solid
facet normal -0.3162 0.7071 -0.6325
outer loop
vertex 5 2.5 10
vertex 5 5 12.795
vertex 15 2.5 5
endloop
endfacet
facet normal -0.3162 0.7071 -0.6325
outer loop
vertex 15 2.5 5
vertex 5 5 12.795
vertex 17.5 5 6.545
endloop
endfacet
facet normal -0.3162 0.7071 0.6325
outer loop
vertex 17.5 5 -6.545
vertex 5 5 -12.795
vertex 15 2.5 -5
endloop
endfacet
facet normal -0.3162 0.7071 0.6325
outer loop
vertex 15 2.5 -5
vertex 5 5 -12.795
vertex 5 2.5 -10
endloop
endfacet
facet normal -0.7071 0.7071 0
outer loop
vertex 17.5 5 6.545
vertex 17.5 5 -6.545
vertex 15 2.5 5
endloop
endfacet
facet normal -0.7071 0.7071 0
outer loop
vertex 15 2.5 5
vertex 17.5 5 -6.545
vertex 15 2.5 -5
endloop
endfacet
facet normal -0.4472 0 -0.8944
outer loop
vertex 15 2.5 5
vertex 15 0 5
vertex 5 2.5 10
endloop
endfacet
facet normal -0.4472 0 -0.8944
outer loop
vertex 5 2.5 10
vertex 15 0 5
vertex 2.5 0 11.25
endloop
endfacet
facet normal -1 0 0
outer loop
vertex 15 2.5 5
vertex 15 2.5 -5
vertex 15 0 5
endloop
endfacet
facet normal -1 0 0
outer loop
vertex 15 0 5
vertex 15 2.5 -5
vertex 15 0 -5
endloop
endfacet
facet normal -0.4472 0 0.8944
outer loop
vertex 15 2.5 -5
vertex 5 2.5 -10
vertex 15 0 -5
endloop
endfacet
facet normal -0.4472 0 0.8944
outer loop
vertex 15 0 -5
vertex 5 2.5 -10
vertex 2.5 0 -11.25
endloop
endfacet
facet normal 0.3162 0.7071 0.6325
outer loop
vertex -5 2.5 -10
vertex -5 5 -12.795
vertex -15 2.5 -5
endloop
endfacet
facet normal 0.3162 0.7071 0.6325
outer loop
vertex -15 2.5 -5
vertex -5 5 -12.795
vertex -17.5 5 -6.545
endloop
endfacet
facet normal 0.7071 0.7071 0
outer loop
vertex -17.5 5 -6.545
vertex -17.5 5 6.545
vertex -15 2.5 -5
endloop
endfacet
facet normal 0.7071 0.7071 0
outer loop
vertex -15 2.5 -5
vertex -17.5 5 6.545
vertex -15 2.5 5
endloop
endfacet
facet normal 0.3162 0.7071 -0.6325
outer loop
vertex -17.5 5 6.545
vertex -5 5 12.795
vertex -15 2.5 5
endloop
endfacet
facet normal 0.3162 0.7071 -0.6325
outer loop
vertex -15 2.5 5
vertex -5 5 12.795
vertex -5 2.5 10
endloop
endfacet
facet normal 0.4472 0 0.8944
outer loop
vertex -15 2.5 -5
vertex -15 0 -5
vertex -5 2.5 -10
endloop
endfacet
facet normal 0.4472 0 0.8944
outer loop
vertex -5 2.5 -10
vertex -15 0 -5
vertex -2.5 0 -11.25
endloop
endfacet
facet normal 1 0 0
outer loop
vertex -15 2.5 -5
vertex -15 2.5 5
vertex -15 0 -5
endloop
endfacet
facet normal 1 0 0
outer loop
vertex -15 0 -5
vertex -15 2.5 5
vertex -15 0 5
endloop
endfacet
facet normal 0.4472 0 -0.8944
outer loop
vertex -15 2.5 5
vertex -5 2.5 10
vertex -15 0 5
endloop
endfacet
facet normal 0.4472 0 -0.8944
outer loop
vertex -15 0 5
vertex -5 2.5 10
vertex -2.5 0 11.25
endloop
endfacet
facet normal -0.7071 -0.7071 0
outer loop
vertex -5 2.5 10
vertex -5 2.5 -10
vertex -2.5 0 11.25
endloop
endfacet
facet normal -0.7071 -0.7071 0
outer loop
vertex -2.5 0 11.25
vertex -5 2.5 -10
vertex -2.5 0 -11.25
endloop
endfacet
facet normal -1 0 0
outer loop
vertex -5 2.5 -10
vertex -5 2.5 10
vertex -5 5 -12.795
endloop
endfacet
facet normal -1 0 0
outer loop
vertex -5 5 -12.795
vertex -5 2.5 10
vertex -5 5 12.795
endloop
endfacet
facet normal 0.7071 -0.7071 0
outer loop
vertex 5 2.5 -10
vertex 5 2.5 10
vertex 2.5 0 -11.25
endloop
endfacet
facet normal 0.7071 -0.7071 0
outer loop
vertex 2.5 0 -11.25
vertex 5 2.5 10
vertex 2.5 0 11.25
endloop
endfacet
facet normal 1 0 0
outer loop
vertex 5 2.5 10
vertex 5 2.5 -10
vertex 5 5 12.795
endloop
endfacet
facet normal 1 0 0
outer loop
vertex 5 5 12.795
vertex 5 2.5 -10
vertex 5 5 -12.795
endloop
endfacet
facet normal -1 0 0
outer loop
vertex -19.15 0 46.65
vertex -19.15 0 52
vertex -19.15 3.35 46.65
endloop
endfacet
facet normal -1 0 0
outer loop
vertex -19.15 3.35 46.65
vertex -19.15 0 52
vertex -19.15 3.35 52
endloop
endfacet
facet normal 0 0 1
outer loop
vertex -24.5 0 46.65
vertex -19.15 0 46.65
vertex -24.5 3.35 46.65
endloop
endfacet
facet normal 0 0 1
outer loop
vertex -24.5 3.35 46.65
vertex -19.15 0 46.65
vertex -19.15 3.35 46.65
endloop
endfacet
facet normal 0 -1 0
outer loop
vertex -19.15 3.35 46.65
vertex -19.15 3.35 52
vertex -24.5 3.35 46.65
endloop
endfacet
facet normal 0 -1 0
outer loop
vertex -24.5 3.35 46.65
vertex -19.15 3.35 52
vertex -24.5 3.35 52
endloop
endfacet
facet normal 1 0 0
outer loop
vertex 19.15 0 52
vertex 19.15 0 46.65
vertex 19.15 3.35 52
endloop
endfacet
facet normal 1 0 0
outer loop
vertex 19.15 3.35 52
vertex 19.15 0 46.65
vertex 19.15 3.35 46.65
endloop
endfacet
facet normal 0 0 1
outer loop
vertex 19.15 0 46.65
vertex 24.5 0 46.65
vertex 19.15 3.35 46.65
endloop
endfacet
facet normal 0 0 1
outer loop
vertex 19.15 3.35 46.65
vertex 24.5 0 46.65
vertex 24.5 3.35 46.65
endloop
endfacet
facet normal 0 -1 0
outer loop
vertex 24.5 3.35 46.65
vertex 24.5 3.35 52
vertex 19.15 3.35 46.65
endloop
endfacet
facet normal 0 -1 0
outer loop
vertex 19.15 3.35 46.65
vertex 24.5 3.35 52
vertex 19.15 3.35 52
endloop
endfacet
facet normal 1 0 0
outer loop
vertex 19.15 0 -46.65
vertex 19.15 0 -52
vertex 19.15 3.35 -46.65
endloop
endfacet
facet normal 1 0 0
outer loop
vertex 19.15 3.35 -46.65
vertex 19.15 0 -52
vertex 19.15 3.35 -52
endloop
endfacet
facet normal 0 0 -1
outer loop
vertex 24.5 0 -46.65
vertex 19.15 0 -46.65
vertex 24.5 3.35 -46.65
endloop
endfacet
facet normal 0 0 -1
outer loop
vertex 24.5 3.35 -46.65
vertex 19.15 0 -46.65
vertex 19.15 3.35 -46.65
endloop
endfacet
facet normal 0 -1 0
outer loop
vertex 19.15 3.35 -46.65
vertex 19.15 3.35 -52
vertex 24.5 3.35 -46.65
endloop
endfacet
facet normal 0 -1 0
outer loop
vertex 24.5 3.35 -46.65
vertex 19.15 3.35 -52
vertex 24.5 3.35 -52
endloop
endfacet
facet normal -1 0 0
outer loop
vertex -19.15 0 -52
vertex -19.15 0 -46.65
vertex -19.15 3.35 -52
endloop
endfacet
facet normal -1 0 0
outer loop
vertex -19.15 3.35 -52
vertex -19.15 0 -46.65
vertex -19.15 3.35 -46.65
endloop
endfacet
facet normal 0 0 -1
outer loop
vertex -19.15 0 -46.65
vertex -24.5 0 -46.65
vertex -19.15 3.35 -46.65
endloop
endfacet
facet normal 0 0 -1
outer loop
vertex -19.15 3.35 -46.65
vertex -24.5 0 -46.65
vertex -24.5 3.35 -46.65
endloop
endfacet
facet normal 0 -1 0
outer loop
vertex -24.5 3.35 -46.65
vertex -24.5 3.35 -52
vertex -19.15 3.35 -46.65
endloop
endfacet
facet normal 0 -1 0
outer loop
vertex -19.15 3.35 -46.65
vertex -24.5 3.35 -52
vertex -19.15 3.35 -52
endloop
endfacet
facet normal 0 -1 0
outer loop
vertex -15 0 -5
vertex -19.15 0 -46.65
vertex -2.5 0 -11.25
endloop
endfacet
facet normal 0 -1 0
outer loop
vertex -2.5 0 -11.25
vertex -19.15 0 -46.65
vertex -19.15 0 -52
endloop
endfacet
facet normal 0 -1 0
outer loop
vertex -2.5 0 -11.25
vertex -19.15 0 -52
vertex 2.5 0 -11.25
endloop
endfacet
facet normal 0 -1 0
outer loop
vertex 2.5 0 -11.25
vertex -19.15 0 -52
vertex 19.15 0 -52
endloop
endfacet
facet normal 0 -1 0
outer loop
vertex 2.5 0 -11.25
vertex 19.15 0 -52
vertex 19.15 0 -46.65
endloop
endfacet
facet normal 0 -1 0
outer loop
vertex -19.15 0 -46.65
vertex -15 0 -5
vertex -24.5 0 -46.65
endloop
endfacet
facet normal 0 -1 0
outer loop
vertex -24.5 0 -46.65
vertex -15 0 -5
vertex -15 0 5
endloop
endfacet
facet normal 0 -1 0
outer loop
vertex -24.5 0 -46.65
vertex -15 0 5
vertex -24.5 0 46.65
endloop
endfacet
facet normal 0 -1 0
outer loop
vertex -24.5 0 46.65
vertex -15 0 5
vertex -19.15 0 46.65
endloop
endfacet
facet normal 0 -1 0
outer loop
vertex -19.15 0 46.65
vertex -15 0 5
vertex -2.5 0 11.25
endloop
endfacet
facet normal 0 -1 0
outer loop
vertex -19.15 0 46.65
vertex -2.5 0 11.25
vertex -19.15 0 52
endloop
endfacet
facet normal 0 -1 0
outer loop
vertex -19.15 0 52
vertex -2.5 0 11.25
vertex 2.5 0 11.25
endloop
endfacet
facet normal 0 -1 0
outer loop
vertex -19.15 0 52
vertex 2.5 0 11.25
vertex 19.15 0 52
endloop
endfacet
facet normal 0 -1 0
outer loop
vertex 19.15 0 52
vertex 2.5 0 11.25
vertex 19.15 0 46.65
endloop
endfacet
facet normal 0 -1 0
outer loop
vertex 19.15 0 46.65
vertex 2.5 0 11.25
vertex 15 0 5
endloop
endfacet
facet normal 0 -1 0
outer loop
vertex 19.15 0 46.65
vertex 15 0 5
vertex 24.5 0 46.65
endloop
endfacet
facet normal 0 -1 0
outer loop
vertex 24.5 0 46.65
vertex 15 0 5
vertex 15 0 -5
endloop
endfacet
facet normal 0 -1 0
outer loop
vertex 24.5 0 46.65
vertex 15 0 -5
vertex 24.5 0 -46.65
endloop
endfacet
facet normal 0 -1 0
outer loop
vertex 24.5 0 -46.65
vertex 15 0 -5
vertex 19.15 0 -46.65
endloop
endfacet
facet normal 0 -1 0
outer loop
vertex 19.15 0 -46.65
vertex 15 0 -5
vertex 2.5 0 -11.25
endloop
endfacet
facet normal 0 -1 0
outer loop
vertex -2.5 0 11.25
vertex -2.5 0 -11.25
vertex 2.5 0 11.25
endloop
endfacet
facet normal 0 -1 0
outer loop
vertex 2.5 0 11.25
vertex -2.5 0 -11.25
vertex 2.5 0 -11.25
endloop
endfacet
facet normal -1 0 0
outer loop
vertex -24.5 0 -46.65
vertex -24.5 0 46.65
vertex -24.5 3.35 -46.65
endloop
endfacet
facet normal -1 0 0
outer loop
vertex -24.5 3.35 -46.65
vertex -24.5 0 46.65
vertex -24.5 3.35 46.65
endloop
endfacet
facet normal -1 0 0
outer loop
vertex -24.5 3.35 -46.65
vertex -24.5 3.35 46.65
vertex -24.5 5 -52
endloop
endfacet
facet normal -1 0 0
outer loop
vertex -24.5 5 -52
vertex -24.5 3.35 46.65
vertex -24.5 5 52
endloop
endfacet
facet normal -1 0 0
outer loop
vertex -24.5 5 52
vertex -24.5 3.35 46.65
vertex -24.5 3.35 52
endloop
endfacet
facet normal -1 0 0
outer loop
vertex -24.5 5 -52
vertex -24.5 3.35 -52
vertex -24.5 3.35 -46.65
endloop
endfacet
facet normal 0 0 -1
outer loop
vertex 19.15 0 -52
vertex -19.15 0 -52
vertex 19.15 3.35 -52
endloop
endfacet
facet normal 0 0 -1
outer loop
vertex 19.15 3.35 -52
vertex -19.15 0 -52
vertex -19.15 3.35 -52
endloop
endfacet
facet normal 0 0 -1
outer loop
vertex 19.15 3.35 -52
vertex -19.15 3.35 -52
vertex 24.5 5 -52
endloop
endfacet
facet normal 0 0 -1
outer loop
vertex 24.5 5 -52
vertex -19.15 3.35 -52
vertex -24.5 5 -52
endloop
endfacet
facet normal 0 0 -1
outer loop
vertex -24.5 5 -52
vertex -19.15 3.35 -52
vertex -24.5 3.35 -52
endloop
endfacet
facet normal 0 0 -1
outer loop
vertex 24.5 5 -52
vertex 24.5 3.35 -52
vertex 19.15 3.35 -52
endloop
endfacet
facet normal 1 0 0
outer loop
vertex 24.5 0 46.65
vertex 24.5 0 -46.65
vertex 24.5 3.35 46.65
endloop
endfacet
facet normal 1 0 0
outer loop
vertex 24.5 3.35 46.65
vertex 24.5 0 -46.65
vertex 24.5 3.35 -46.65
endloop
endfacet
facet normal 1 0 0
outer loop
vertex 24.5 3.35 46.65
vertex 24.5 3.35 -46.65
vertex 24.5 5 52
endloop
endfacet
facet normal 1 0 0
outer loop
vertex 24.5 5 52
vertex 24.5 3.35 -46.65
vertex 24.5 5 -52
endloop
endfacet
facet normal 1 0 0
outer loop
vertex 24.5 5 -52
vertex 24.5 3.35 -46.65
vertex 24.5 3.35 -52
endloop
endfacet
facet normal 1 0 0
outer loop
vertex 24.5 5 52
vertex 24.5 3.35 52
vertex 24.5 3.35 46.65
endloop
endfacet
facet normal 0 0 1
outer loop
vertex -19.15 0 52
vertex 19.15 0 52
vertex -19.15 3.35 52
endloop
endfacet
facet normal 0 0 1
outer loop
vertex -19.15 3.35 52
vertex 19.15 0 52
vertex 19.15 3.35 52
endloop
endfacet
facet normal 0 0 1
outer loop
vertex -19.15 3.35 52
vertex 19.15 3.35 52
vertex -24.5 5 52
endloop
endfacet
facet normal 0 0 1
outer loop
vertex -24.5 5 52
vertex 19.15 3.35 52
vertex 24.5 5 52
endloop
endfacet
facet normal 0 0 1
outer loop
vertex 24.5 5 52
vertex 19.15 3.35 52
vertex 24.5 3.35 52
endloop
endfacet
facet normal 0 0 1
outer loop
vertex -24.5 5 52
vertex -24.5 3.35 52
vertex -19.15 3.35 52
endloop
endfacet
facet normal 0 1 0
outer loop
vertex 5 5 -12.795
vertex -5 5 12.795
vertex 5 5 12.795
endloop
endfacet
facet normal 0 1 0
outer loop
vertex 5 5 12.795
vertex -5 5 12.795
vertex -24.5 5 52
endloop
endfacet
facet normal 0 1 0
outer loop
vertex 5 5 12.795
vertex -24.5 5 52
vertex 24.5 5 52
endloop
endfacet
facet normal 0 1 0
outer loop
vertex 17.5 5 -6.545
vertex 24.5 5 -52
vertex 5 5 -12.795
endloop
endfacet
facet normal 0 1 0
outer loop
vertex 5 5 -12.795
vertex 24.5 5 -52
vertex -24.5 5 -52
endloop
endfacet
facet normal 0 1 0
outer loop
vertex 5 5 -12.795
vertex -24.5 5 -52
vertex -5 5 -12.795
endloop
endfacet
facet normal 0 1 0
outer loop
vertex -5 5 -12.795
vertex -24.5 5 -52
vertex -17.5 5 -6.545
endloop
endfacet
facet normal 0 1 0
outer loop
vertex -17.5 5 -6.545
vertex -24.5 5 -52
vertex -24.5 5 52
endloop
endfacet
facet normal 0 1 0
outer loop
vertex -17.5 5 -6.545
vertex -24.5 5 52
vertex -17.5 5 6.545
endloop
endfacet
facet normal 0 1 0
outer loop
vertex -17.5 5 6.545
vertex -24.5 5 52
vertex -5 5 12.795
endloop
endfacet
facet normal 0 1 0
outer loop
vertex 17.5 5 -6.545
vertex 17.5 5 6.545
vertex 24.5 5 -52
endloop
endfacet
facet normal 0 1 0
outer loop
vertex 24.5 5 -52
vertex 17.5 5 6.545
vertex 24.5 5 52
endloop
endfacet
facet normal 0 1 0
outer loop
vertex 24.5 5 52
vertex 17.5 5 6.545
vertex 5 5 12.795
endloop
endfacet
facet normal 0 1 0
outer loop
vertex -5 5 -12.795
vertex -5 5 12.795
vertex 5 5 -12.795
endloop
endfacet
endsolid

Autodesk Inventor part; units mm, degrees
ref_plane "YZ Plane" through (0, 0, 0) normal (1, 0, 0) x (0, 1, 0)
ref_plane "XZ Plane" through (0, 0, 0) normal (0, 1, 0) x (-1, 0, 0)
ref_plane "XY Plane" through (0, 0, 0) normal (0, 0, 1) x (1, 0, 0)
sketch "Sketch1" plane through (0, 0, 0) normal (0, 1, 0) x (-1, 0, 0)
  line L0 (-24.5, 52) -> (24.5, 52)
  line L1 (24.5, 52) -> (24.5, -52)
  line L2 (24.5, -52) -> (-24.5, -52)
  line L3 (-24.5, -52) -> (-24.5, 52)
  point P0 (0, 0)
  point P1 (0, -52)
  point P2 (24.5, 0)
  dimension "d0" = 104
  dimension "d1" = 49
extrude "Extrusion1" add sketch "Sketch1" along normal blind 5
sketch "Sketch2" plane through (0, 0, 0) normal (0, -1, 0) x (1, 0, 0)
  line L0 (24.5, 46.65) -> (19.15, 46.65)
  line L1 (19.15, 46.65) -> (19.15, 52)
  line L2 (19.15, 52) -> (24.5, 52)
  line L3 (24.5, 52) -> (24.5, 46.65)
  line L4 (24.5, -52) -> (24.5, 52) projected
  line L5 (24.5, 52) -> (-24.5, 52) projected
  line L6 (0, -77) -> (0, 77) projected
  line L7 (-38.5, 0) -> (38.5, 0) projected
  line L8 (24.5, -46.65) -> (19.15, -46.65)
  line L9 (19.15, -46.65) -> (19.15, -52)
  line L10 (19.15, -52) -> (24.5, -52)
  line L11 (24.5, -52) -> (24.5, -46.65)
  line L12 (-24.5, 46.65) -> (-19.15, 46.65)
  line L13 (-19.15, 46.65) -> (-19.15, 52)
  line L14 (-19.15, 52) -> (-24.5, 52)
  line L15 (-24.5, 52) -> (-24.5, 46.65)
  line L16 (-19.15, -46.65) -> (-19.15, -52)
  line L17 (-24.5, -46.65) -> (-19.15, -46.65)
  line L18 (-24.5, -52) -> (-24.5, -46.65)
  line L19 (-19.15, -52) -> (-24.5, -52)
  point P0 (0, 0)
  dimension "d4" = 5.35
extrude "Extrusion2" cut sketch "Sketch2" against normal blind 3.35 contours L0 L1 L2 L3 | L4 L10 L9 L8 | L13 L12 L15 L5 | L16 L19 L18 L17
sketch "Sketch3" plane through (0, 5, 0) normal (0, 1, 0) x (1, 0, 0)
  line L0 (-5, -10) -> (-15, -5)
  line L1 (-15, -5) -> (-15, 5)
  line L2 (-15, 5) -> (-5, 10)
  line L3 (-5, 10) -> (-5, -10)
  line L4 (15, -5) -> (15, 5)
  line L5 (15, 5) -> (5, 10)
  line L6 (5, 10) -> (5, -10)
  line L7 (5, -10) -> (15, -5)
  point P0 (0, 0)
  point P1 (-5, 0)
  dimension "d7" = 5
  dimension "d8" = 5
  dimension "d9" = 10
  dimension "d10" = 20
  dimension "d11" = 10
  dimension "d12" = 10
extrude "Extrusion3" cut sketch "Sketch3" against normal through all
chamfer "Chamfer1" distance 2.5 angle 45 8 edges at (5, 0, 0) (-5, 0, 0) (-10, 5, 7.5) (-15, 5, 0) (-10, 5, -7.5) (10, 5, -7.5) (15, 5, 0) (10, 5, 7.5)
equation "\"d4\" = magnet_A"
equation "\"d5\" = magnet_B"
equation "\"magnet_A\" = 5.35"
equation "\"magnet_B\" = 3.35"
properties part number "BODY_TOP_COVER"
